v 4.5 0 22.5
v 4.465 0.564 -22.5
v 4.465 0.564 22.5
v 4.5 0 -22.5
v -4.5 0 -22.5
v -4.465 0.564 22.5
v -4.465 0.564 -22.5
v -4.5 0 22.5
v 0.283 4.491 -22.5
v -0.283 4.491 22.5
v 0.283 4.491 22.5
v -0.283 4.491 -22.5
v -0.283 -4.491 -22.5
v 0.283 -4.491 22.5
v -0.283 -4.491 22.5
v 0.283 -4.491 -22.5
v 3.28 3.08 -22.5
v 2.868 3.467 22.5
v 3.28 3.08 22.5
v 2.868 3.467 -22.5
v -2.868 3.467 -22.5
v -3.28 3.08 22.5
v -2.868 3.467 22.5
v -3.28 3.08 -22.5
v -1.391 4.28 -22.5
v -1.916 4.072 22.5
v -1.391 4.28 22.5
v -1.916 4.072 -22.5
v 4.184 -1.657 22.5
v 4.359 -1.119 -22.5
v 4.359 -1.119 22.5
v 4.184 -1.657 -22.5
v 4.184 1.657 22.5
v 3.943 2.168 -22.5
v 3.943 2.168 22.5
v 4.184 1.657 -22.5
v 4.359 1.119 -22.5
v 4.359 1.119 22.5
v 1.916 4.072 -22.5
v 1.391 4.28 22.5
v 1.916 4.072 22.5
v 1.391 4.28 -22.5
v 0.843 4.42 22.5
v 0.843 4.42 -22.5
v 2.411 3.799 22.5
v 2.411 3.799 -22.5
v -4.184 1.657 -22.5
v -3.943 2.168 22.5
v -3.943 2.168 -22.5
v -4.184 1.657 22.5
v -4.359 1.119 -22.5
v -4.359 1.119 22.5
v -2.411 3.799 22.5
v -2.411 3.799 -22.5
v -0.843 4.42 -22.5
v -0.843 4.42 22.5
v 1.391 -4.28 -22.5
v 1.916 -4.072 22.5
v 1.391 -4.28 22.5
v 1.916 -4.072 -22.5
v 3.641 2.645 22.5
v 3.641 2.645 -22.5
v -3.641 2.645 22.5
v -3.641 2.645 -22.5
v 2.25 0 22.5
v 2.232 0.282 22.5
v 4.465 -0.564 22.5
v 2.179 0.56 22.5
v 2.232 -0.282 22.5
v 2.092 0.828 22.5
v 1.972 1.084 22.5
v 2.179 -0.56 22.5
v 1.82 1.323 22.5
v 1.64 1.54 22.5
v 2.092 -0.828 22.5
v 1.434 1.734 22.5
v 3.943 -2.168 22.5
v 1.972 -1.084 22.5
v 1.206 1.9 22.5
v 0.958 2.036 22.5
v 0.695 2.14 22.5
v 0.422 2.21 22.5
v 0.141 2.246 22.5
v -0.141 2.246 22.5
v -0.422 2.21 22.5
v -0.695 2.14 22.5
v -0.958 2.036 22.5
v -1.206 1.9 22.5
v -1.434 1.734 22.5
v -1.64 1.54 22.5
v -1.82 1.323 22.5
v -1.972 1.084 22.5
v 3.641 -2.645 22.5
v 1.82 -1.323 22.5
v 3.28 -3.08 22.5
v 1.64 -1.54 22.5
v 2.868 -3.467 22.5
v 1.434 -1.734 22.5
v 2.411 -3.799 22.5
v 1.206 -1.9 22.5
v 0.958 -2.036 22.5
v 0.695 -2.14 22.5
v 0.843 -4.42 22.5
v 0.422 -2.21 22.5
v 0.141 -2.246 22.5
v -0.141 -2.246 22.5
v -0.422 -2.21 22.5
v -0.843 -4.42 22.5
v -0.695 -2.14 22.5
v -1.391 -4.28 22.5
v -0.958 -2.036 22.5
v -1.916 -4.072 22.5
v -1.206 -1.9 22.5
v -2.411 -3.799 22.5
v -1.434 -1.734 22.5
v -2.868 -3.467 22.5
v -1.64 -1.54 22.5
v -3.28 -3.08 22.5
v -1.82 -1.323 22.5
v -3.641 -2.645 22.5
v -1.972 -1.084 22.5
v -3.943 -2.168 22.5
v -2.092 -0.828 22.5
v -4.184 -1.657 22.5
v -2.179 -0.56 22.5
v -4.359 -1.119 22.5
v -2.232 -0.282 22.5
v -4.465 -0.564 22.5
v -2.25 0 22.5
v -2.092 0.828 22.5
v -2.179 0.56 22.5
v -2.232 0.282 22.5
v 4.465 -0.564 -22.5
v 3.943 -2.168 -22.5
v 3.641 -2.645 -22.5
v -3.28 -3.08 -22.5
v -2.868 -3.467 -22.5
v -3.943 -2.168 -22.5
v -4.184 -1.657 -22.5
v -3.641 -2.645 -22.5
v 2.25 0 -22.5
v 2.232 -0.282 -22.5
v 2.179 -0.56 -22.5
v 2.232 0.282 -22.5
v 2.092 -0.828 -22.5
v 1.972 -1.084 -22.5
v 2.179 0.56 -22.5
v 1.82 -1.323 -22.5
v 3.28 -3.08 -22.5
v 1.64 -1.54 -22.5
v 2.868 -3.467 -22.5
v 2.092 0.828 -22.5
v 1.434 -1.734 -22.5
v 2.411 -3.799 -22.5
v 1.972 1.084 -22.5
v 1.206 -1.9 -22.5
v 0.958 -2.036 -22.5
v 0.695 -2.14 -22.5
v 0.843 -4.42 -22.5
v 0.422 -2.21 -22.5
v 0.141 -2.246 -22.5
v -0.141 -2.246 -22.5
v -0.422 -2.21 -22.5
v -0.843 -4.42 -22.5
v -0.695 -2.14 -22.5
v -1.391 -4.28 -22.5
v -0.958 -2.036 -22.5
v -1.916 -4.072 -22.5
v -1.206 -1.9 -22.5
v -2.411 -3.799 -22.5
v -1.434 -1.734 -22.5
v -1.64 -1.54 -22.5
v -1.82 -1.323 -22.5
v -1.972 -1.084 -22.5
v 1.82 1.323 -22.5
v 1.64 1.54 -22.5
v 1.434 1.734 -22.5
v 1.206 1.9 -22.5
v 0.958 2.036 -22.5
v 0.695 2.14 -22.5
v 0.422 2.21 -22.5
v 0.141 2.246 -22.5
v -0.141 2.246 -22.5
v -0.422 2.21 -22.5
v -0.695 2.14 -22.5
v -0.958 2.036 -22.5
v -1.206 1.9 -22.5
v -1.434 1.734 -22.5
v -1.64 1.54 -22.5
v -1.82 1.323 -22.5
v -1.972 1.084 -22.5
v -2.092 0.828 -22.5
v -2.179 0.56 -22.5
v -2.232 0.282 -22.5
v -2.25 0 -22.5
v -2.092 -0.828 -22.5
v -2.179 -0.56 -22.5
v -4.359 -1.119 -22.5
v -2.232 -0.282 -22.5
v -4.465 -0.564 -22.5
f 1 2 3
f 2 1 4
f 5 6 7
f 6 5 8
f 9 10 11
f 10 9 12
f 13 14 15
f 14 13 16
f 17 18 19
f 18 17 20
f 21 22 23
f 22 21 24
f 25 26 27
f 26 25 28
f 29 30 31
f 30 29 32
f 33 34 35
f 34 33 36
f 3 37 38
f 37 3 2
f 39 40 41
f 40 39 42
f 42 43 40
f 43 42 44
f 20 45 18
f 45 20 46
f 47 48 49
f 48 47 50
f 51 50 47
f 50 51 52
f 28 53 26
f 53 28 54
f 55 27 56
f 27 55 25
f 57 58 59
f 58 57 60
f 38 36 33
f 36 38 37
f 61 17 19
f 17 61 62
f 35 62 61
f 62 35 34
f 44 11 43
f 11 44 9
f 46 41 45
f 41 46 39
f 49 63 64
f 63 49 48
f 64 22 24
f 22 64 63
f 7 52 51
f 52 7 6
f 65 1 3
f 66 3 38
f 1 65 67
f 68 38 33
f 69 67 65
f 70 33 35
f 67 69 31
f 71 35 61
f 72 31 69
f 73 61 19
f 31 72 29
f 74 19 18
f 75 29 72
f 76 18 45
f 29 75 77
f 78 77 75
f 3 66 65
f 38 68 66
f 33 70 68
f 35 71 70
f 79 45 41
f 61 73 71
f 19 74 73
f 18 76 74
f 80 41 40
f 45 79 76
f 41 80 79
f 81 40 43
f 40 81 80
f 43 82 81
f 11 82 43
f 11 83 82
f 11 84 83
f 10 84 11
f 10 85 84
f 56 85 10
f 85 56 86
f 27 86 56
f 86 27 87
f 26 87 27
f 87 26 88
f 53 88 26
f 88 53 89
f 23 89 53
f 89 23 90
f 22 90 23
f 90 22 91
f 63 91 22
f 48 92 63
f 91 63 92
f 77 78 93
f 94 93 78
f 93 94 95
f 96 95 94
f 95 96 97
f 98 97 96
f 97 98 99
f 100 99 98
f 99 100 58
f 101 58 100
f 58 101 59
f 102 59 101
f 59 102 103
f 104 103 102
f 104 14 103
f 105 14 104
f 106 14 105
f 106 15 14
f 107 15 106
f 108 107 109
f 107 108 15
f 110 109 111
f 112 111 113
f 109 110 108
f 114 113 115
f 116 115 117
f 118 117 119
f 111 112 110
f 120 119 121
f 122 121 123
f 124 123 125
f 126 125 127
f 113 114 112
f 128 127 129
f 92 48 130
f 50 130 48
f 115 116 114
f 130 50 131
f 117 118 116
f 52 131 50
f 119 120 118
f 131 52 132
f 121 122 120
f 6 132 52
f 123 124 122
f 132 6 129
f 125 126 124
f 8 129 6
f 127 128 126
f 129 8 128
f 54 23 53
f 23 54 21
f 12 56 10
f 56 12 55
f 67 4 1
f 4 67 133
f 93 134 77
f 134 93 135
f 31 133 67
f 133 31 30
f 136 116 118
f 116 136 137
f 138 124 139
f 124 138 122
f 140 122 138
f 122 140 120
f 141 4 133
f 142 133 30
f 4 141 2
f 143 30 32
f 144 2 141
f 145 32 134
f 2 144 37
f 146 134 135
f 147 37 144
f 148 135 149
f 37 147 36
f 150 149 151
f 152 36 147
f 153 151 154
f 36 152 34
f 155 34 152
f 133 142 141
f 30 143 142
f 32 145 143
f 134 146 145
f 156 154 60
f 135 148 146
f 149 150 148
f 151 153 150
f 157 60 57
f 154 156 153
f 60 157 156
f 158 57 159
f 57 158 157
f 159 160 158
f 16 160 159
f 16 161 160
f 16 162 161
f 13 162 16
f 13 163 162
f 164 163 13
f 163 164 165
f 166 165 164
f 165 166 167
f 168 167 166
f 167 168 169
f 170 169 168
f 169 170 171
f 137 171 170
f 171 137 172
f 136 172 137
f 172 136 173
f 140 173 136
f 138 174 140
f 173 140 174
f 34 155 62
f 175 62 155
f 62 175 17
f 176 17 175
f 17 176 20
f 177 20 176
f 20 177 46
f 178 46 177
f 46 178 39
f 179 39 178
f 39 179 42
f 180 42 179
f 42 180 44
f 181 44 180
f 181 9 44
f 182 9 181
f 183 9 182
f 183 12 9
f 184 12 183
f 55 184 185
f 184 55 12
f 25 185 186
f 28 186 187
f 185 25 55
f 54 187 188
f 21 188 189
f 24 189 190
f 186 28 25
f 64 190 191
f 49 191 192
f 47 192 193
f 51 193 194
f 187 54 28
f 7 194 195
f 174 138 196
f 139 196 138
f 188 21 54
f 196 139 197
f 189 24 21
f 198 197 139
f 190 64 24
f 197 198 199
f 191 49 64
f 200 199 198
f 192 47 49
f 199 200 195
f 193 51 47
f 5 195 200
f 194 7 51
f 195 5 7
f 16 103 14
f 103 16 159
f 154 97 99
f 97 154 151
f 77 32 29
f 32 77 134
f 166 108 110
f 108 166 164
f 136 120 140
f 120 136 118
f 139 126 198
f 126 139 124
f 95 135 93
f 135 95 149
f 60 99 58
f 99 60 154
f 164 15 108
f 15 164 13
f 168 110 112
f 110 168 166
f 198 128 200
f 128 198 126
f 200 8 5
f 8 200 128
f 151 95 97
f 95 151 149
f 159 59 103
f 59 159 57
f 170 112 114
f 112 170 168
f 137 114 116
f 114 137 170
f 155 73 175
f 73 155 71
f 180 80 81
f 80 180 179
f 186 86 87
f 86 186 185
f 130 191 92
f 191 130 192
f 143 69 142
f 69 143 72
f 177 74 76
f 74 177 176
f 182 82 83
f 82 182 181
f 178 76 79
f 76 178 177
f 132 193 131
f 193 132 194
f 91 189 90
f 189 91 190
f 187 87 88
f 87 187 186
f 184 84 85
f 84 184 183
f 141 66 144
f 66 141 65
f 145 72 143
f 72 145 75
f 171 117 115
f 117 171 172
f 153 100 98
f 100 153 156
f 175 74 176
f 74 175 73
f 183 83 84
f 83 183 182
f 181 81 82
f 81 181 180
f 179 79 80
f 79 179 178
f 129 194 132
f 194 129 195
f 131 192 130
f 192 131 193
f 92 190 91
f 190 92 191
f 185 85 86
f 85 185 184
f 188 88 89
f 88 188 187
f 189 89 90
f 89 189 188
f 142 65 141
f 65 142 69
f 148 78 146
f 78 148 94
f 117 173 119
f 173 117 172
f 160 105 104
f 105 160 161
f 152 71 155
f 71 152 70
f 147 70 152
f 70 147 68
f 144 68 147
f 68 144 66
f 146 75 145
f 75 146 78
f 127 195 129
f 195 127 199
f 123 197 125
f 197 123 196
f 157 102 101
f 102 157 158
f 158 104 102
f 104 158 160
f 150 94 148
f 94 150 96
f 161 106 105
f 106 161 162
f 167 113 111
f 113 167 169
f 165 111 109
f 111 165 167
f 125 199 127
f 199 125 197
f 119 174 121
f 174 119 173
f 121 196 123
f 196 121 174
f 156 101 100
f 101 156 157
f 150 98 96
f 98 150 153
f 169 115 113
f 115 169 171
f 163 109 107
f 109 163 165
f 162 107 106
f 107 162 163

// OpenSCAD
$fn = 50;


difference() {
	union() {
		translate(v = [0, 0, -22.5000000000]) {
			cylinder(h = 45, r = 4.5000000000);
		}
	}
	union() {
		translate(v = [0, 0, -100.0000000000]) {
			cylinder(h = 200, r = 2.2500000000);
		}
	}
}
